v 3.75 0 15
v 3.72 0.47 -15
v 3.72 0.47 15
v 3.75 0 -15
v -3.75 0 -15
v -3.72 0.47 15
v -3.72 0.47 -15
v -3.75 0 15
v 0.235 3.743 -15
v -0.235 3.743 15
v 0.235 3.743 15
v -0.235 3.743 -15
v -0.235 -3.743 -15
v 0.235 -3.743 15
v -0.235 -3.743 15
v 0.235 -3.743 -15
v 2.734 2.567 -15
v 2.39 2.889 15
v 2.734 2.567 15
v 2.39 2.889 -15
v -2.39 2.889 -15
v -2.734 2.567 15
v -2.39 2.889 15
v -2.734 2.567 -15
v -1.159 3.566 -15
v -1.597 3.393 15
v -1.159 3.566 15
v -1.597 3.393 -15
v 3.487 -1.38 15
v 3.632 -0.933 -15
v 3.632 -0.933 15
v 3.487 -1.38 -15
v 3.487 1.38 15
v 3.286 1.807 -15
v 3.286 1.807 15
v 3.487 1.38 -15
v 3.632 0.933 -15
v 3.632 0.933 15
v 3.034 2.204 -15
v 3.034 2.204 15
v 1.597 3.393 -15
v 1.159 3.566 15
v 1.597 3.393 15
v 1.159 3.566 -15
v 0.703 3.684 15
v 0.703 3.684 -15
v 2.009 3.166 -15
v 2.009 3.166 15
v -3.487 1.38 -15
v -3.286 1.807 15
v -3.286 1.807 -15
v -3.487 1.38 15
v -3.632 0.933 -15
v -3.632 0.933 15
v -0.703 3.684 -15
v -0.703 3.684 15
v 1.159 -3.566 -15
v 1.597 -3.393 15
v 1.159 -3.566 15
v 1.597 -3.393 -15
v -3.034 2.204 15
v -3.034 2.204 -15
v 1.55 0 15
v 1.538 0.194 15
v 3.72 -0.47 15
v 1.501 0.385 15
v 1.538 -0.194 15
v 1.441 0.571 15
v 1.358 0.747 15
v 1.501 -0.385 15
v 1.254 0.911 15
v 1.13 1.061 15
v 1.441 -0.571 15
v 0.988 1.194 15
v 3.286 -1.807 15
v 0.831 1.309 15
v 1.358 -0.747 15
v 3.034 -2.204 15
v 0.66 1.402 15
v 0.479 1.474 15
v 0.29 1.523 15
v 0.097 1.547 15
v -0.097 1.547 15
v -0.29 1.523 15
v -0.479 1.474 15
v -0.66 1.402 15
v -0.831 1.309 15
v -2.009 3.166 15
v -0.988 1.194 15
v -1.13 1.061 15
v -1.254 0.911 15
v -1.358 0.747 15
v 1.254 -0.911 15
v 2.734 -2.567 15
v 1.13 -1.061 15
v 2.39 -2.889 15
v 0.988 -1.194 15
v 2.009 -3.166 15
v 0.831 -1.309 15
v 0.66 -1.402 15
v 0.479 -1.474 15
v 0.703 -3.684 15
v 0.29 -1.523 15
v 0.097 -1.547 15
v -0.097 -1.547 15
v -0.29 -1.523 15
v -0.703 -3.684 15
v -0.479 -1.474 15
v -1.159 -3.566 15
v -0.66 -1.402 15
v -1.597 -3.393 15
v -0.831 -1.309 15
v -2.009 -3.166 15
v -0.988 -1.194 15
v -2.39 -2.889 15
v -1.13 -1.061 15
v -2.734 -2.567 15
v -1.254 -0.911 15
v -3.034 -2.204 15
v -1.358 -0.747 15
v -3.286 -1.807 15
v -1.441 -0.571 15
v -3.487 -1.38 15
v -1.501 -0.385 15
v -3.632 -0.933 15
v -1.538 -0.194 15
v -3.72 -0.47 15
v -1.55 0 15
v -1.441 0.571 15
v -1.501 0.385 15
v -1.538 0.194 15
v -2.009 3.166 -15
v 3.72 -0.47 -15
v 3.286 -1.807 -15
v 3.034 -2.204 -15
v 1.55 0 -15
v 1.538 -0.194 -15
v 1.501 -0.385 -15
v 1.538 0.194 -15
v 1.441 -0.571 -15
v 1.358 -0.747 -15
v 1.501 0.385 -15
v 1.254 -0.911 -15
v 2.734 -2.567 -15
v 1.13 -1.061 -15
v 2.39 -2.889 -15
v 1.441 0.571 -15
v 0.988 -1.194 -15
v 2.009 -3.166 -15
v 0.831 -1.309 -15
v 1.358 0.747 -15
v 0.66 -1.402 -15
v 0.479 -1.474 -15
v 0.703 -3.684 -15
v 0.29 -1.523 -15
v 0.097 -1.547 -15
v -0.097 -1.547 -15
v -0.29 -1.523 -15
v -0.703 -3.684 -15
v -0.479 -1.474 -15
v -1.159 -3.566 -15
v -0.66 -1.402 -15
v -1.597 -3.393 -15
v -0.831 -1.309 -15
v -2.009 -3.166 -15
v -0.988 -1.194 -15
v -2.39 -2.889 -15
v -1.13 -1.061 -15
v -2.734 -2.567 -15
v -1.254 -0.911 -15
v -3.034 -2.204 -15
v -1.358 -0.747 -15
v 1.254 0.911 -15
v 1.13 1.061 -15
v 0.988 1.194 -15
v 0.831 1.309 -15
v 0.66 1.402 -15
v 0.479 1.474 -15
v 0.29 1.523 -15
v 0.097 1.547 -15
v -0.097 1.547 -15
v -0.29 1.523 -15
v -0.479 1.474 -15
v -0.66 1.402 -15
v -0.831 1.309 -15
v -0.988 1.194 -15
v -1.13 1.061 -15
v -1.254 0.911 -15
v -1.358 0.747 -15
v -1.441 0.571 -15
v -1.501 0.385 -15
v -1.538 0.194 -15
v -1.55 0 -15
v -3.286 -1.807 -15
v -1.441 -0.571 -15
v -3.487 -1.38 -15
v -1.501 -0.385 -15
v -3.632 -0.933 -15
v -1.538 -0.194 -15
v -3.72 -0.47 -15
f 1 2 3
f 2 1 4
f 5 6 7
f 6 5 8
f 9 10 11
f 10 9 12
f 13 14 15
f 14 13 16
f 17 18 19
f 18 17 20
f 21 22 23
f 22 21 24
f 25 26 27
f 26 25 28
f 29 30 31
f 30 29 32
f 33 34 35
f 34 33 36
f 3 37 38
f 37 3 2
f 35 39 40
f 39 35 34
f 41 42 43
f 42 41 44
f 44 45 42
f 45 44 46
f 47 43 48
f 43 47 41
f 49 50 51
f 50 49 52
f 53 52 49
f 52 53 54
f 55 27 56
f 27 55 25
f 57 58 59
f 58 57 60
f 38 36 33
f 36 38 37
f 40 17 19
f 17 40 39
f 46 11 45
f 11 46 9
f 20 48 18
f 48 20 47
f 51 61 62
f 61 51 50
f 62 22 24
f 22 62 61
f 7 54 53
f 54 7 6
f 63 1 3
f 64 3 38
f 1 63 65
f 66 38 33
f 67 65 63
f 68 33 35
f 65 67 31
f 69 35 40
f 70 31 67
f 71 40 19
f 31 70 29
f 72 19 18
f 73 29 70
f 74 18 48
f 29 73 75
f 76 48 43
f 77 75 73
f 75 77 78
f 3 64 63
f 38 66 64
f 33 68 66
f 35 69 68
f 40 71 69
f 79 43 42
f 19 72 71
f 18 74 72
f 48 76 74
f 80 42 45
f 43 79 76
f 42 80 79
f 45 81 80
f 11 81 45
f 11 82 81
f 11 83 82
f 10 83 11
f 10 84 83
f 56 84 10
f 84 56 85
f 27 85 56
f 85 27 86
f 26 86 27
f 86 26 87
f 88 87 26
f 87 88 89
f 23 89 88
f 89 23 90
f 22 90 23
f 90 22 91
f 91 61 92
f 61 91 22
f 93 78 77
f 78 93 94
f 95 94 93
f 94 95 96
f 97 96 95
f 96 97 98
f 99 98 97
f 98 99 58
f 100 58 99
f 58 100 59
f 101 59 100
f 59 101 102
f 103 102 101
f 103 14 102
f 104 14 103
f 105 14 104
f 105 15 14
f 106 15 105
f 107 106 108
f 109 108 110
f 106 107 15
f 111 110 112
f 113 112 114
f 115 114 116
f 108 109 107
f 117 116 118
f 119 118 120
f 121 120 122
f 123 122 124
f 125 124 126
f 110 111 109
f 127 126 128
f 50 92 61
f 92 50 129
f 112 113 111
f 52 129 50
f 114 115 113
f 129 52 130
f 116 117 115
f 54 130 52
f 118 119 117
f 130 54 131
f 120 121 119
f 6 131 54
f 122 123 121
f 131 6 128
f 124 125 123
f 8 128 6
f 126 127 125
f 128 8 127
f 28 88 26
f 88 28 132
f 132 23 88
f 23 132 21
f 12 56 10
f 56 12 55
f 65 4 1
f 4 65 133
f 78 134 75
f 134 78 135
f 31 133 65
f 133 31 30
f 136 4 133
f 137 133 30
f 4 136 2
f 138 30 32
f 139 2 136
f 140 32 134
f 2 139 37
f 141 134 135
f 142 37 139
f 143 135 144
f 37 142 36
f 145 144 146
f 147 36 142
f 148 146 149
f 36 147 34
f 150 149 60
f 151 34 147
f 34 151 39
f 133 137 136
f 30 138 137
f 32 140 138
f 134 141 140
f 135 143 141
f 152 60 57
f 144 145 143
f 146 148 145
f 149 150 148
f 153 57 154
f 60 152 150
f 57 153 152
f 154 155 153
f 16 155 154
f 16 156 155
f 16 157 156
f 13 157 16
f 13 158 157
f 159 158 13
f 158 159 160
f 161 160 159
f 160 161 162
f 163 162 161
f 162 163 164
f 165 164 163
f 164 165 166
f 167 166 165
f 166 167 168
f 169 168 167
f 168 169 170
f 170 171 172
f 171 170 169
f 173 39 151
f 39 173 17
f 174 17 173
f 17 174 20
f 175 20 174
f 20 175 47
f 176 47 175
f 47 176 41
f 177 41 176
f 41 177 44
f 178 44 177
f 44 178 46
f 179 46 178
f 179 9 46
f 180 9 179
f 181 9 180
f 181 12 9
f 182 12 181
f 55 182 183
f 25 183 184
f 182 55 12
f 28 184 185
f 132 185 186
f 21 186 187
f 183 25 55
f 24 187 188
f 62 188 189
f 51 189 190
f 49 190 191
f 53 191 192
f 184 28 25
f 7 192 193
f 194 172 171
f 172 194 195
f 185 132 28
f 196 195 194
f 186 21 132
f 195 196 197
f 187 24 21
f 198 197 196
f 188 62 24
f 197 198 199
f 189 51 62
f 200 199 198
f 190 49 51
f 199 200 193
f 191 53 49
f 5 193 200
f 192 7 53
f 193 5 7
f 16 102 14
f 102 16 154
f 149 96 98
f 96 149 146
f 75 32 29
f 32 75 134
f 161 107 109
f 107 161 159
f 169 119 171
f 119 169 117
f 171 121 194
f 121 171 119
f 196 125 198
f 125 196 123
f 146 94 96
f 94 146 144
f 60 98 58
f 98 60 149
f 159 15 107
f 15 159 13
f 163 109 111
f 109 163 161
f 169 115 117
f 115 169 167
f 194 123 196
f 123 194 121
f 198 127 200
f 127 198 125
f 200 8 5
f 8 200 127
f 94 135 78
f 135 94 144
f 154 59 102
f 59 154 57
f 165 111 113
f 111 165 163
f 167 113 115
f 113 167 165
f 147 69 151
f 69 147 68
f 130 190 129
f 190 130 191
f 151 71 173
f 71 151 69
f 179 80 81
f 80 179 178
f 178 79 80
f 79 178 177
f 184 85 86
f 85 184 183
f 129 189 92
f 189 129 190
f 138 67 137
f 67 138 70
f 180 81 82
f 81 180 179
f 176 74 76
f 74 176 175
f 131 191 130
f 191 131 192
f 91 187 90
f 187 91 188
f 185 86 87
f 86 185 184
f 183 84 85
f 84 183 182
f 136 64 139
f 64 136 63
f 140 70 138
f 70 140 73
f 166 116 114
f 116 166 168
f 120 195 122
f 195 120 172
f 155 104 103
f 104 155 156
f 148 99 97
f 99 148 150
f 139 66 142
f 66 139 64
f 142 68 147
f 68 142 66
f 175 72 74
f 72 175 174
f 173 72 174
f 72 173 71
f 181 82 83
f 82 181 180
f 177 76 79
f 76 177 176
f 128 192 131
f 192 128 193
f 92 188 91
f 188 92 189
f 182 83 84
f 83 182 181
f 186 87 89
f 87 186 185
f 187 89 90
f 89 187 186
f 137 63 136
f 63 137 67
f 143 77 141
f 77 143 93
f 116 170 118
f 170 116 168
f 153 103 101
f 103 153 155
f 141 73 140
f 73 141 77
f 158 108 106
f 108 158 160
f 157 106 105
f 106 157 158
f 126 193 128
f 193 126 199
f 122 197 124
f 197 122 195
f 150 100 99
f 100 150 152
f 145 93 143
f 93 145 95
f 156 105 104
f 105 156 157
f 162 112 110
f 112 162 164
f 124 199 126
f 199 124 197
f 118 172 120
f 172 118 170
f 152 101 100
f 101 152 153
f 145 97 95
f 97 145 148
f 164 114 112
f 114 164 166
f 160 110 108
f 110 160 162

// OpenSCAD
$fn = 50;


difference() {
	union() {
		translate(v = [0, 0, -15.0000000000]) {
			cylinder(h = 30, r = 3.7500000000);
		}
	}
	union() {
		translate(v = [0, 0, -100.0000000000]) {
			cylinder(h = 200, r = 1.5500000000);
		}
	}
}
